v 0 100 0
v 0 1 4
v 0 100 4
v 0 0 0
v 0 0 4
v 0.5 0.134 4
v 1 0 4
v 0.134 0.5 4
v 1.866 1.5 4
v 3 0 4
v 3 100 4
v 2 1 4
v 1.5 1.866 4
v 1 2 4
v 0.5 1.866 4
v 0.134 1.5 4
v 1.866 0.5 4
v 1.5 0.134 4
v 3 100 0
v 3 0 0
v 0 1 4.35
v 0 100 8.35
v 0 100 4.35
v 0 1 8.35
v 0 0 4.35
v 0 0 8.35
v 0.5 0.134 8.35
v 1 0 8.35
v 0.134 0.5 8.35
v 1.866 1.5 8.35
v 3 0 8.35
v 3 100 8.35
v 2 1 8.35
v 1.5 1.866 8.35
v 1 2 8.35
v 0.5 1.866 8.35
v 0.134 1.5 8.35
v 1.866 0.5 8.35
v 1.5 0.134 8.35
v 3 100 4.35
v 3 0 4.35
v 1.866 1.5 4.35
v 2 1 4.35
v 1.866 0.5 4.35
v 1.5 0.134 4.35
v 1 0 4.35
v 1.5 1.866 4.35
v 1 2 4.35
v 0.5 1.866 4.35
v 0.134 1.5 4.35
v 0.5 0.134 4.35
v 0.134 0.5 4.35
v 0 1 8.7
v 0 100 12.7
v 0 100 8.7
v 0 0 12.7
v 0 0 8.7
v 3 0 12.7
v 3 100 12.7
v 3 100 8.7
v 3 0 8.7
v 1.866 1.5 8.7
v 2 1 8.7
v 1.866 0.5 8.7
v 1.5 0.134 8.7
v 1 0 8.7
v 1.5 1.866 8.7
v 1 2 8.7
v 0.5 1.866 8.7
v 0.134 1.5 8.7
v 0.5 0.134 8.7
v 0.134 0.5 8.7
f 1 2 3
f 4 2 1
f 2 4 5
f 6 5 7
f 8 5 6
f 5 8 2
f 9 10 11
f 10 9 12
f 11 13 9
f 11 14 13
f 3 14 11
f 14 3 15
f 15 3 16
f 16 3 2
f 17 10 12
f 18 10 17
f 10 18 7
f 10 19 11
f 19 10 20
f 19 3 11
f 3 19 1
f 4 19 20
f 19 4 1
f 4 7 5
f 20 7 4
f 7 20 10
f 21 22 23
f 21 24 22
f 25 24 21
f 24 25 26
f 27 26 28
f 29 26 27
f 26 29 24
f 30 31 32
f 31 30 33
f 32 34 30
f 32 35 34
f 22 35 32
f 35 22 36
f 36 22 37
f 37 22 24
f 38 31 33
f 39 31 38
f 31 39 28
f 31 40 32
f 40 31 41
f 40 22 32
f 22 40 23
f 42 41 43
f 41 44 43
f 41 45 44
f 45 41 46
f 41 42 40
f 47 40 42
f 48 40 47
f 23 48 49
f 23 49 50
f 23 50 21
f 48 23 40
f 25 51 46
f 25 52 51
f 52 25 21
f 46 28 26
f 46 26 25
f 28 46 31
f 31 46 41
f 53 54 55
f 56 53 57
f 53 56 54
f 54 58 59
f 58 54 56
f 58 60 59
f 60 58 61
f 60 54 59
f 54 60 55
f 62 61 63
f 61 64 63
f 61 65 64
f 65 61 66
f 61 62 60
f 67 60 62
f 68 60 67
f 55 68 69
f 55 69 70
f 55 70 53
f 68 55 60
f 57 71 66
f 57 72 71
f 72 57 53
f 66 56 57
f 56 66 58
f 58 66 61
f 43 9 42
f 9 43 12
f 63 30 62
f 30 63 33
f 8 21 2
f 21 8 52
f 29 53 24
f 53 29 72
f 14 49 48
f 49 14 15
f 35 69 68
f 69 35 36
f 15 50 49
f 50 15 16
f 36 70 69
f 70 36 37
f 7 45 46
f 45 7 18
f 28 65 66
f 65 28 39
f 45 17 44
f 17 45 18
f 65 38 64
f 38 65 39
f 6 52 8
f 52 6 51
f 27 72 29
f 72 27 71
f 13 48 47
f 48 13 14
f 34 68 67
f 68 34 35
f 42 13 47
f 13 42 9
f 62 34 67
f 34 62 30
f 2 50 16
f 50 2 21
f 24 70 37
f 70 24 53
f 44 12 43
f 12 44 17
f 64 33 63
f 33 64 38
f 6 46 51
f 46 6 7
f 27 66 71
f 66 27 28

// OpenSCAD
// Adhestion test to print parts on top of each other
// By CarlosGS -> https://github.com/CarlosGS/facemask-print-vertical

part_height = 4;
separation = 0.35;
N_copies = 3;

for (i = [0:N_copies-1])
    translate([0,0,i*(part_height+separation)])
        cube([3,100,part_height]);

// NEEDED ONLY FOR PRUSA SLIC3R
// If you get "error empty layers" you can bypass it by having a vertical column, you can also use it to support external overhangs
columnX = 1;
columnY = 1;
translate([columnX,columnY,0])
    cylinder(r=1,h=N_copies*(part_height+separation)-2*separation, $fn=12);
